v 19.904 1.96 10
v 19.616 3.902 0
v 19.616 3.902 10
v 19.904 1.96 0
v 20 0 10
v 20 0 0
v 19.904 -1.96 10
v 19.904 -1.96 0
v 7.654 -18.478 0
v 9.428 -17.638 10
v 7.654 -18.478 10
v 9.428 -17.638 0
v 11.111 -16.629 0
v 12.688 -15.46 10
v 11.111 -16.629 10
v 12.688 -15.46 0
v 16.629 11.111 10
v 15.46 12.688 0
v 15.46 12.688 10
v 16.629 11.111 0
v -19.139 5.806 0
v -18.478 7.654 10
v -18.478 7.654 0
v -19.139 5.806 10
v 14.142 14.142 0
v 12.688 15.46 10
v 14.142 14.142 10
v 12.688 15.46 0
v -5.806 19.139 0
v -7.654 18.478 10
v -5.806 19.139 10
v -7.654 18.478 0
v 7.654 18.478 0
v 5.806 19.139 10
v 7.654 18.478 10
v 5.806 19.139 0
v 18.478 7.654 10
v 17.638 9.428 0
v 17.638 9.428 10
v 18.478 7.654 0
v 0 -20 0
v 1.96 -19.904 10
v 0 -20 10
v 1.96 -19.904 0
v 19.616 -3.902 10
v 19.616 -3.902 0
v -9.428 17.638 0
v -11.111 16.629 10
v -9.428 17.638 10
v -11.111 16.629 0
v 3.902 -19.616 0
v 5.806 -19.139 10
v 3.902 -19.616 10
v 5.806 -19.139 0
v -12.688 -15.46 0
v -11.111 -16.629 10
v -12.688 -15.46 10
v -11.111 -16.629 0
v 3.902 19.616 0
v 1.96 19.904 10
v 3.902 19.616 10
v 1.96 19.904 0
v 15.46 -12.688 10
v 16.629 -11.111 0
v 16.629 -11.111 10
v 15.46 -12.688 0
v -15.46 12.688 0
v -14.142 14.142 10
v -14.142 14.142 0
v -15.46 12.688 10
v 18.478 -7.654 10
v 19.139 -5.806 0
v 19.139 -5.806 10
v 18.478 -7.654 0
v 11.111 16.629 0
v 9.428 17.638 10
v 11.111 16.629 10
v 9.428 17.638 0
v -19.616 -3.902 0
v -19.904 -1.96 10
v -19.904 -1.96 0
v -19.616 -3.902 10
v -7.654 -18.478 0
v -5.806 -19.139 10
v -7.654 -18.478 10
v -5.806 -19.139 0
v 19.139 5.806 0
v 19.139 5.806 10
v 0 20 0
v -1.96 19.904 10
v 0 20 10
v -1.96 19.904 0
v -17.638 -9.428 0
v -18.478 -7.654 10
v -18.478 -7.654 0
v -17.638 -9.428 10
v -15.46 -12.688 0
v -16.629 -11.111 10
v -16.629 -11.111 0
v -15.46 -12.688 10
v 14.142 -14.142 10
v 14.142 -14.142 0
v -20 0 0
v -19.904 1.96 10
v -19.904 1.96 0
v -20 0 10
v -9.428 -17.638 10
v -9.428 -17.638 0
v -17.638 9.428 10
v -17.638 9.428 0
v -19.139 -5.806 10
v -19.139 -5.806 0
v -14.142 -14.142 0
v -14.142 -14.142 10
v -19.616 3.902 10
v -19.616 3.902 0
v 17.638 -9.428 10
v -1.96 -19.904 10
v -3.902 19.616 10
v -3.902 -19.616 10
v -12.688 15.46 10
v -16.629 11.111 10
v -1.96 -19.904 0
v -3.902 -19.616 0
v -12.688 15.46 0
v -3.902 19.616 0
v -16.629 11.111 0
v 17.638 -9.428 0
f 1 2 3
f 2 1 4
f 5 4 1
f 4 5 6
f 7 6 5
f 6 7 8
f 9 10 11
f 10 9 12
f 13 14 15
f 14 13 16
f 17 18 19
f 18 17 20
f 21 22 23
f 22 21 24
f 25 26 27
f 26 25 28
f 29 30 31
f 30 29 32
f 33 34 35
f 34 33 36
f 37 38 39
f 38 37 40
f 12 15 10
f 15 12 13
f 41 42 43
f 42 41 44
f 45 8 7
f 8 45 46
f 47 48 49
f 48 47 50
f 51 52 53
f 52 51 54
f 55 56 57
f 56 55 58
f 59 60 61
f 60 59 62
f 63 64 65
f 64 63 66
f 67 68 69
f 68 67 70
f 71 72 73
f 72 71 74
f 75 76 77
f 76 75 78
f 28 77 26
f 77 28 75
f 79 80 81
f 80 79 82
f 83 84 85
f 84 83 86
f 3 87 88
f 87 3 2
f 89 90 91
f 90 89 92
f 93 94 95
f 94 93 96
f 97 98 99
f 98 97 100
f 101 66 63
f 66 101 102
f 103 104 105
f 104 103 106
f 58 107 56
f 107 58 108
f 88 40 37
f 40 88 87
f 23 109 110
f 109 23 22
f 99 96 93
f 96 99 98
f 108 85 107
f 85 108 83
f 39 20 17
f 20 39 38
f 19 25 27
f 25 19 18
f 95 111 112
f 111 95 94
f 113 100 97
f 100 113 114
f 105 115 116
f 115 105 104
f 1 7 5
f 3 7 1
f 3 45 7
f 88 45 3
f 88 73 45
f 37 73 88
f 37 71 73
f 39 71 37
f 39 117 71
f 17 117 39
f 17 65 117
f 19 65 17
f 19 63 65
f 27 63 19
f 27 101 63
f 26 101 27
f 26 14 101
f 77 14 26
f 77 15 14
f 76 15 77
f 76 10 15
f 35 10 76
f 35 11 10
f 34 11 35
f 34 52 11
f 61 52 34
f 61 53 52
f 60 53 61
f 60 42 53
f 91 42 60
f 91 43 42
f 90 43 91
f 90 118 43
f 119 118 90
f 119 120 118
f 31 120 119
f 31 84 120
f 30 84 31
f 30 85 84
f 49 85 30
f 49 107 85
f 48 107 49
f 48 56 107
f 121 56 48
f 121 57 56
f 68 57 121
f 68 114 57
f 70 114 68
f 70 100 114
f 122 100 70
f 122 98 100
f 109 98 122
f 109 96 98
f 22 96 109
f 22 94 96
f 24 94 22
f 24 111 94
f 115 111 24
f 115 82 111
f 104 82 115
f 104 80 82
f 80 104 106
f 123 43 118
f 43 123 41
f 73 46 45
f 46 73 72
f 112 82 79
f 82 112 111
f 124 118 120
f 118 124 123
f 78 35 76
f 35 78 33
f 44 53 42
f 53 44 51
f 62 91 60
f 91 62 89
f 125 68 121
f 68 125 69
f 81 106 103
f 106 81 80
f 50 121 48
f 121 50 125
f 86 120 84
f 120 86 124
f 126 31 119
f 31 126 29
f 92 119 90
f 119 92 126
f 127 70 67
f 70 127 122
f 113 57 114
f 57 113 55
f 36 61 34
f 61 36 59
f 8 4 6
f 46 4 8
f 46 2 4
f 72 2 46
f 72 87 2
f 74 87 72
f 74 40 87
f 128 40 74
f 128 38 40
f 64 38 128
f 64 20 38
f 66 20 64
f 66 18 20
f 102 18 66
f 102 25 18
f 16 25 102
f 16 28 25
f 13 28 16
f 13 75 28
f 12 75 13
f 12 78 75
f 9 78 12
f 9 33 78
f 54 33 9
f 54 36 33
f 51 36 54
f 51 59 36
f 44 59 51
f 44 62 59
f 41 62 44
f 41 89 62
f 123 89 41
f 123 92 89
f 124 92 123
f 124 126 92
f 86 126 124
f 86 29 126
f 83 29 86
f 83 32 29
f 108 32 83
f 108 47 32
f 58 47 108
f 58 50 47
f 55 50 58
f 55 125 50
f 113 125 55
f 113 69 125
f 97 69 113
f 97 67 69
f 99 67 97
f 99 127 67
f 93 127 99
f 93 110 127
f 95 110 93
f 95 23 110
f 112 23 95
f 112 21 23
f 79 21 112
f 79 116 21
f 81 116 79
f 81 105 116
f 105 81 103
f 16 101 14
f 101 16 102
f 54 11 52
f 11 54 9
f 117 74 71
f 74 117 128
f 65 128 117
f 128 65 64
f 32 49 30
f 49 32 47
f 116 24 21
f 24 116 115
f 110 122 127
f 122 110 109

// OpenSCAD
// Pulley Parameters
radius = 20;
thickness = 10;
groove_radius = 10;
groove_depth = 3;
number_of_grooves = 2;
groove_angle_offset = 18; // Offset from center to groove

// Pulley Body
difference() {
  cylinder(h = thickness, r = radius, $fn = 64);
  for (i = [0:number_of_grooves-1]) {
    rotate([0, 0, i * 360 / number_of_grooves]) {
      translate([0,0,-groove_depth]) {
        cube([radius * 2, radius * 2, groove_depth], center = true);
      }
    }
  }
}

// Hole for rope passage (optional)
// cylinder(h = thickness, r = 2, $fn = 64);

// Uncomment to generate a pulley with holes

//difference() {
//  cylinder(h = thickness, r = radius, $fn = 64);
//  for (i = [0:number_of_grooves-1]) {
//    rotate([0, 0, i * 360 / number_of_grooves]) {
//      translate([0,0,-groove_depth]) {
//        cube([radius * 2, radius * 2, groove_depth], center = true);
//      }
//    }
//  }
//}
